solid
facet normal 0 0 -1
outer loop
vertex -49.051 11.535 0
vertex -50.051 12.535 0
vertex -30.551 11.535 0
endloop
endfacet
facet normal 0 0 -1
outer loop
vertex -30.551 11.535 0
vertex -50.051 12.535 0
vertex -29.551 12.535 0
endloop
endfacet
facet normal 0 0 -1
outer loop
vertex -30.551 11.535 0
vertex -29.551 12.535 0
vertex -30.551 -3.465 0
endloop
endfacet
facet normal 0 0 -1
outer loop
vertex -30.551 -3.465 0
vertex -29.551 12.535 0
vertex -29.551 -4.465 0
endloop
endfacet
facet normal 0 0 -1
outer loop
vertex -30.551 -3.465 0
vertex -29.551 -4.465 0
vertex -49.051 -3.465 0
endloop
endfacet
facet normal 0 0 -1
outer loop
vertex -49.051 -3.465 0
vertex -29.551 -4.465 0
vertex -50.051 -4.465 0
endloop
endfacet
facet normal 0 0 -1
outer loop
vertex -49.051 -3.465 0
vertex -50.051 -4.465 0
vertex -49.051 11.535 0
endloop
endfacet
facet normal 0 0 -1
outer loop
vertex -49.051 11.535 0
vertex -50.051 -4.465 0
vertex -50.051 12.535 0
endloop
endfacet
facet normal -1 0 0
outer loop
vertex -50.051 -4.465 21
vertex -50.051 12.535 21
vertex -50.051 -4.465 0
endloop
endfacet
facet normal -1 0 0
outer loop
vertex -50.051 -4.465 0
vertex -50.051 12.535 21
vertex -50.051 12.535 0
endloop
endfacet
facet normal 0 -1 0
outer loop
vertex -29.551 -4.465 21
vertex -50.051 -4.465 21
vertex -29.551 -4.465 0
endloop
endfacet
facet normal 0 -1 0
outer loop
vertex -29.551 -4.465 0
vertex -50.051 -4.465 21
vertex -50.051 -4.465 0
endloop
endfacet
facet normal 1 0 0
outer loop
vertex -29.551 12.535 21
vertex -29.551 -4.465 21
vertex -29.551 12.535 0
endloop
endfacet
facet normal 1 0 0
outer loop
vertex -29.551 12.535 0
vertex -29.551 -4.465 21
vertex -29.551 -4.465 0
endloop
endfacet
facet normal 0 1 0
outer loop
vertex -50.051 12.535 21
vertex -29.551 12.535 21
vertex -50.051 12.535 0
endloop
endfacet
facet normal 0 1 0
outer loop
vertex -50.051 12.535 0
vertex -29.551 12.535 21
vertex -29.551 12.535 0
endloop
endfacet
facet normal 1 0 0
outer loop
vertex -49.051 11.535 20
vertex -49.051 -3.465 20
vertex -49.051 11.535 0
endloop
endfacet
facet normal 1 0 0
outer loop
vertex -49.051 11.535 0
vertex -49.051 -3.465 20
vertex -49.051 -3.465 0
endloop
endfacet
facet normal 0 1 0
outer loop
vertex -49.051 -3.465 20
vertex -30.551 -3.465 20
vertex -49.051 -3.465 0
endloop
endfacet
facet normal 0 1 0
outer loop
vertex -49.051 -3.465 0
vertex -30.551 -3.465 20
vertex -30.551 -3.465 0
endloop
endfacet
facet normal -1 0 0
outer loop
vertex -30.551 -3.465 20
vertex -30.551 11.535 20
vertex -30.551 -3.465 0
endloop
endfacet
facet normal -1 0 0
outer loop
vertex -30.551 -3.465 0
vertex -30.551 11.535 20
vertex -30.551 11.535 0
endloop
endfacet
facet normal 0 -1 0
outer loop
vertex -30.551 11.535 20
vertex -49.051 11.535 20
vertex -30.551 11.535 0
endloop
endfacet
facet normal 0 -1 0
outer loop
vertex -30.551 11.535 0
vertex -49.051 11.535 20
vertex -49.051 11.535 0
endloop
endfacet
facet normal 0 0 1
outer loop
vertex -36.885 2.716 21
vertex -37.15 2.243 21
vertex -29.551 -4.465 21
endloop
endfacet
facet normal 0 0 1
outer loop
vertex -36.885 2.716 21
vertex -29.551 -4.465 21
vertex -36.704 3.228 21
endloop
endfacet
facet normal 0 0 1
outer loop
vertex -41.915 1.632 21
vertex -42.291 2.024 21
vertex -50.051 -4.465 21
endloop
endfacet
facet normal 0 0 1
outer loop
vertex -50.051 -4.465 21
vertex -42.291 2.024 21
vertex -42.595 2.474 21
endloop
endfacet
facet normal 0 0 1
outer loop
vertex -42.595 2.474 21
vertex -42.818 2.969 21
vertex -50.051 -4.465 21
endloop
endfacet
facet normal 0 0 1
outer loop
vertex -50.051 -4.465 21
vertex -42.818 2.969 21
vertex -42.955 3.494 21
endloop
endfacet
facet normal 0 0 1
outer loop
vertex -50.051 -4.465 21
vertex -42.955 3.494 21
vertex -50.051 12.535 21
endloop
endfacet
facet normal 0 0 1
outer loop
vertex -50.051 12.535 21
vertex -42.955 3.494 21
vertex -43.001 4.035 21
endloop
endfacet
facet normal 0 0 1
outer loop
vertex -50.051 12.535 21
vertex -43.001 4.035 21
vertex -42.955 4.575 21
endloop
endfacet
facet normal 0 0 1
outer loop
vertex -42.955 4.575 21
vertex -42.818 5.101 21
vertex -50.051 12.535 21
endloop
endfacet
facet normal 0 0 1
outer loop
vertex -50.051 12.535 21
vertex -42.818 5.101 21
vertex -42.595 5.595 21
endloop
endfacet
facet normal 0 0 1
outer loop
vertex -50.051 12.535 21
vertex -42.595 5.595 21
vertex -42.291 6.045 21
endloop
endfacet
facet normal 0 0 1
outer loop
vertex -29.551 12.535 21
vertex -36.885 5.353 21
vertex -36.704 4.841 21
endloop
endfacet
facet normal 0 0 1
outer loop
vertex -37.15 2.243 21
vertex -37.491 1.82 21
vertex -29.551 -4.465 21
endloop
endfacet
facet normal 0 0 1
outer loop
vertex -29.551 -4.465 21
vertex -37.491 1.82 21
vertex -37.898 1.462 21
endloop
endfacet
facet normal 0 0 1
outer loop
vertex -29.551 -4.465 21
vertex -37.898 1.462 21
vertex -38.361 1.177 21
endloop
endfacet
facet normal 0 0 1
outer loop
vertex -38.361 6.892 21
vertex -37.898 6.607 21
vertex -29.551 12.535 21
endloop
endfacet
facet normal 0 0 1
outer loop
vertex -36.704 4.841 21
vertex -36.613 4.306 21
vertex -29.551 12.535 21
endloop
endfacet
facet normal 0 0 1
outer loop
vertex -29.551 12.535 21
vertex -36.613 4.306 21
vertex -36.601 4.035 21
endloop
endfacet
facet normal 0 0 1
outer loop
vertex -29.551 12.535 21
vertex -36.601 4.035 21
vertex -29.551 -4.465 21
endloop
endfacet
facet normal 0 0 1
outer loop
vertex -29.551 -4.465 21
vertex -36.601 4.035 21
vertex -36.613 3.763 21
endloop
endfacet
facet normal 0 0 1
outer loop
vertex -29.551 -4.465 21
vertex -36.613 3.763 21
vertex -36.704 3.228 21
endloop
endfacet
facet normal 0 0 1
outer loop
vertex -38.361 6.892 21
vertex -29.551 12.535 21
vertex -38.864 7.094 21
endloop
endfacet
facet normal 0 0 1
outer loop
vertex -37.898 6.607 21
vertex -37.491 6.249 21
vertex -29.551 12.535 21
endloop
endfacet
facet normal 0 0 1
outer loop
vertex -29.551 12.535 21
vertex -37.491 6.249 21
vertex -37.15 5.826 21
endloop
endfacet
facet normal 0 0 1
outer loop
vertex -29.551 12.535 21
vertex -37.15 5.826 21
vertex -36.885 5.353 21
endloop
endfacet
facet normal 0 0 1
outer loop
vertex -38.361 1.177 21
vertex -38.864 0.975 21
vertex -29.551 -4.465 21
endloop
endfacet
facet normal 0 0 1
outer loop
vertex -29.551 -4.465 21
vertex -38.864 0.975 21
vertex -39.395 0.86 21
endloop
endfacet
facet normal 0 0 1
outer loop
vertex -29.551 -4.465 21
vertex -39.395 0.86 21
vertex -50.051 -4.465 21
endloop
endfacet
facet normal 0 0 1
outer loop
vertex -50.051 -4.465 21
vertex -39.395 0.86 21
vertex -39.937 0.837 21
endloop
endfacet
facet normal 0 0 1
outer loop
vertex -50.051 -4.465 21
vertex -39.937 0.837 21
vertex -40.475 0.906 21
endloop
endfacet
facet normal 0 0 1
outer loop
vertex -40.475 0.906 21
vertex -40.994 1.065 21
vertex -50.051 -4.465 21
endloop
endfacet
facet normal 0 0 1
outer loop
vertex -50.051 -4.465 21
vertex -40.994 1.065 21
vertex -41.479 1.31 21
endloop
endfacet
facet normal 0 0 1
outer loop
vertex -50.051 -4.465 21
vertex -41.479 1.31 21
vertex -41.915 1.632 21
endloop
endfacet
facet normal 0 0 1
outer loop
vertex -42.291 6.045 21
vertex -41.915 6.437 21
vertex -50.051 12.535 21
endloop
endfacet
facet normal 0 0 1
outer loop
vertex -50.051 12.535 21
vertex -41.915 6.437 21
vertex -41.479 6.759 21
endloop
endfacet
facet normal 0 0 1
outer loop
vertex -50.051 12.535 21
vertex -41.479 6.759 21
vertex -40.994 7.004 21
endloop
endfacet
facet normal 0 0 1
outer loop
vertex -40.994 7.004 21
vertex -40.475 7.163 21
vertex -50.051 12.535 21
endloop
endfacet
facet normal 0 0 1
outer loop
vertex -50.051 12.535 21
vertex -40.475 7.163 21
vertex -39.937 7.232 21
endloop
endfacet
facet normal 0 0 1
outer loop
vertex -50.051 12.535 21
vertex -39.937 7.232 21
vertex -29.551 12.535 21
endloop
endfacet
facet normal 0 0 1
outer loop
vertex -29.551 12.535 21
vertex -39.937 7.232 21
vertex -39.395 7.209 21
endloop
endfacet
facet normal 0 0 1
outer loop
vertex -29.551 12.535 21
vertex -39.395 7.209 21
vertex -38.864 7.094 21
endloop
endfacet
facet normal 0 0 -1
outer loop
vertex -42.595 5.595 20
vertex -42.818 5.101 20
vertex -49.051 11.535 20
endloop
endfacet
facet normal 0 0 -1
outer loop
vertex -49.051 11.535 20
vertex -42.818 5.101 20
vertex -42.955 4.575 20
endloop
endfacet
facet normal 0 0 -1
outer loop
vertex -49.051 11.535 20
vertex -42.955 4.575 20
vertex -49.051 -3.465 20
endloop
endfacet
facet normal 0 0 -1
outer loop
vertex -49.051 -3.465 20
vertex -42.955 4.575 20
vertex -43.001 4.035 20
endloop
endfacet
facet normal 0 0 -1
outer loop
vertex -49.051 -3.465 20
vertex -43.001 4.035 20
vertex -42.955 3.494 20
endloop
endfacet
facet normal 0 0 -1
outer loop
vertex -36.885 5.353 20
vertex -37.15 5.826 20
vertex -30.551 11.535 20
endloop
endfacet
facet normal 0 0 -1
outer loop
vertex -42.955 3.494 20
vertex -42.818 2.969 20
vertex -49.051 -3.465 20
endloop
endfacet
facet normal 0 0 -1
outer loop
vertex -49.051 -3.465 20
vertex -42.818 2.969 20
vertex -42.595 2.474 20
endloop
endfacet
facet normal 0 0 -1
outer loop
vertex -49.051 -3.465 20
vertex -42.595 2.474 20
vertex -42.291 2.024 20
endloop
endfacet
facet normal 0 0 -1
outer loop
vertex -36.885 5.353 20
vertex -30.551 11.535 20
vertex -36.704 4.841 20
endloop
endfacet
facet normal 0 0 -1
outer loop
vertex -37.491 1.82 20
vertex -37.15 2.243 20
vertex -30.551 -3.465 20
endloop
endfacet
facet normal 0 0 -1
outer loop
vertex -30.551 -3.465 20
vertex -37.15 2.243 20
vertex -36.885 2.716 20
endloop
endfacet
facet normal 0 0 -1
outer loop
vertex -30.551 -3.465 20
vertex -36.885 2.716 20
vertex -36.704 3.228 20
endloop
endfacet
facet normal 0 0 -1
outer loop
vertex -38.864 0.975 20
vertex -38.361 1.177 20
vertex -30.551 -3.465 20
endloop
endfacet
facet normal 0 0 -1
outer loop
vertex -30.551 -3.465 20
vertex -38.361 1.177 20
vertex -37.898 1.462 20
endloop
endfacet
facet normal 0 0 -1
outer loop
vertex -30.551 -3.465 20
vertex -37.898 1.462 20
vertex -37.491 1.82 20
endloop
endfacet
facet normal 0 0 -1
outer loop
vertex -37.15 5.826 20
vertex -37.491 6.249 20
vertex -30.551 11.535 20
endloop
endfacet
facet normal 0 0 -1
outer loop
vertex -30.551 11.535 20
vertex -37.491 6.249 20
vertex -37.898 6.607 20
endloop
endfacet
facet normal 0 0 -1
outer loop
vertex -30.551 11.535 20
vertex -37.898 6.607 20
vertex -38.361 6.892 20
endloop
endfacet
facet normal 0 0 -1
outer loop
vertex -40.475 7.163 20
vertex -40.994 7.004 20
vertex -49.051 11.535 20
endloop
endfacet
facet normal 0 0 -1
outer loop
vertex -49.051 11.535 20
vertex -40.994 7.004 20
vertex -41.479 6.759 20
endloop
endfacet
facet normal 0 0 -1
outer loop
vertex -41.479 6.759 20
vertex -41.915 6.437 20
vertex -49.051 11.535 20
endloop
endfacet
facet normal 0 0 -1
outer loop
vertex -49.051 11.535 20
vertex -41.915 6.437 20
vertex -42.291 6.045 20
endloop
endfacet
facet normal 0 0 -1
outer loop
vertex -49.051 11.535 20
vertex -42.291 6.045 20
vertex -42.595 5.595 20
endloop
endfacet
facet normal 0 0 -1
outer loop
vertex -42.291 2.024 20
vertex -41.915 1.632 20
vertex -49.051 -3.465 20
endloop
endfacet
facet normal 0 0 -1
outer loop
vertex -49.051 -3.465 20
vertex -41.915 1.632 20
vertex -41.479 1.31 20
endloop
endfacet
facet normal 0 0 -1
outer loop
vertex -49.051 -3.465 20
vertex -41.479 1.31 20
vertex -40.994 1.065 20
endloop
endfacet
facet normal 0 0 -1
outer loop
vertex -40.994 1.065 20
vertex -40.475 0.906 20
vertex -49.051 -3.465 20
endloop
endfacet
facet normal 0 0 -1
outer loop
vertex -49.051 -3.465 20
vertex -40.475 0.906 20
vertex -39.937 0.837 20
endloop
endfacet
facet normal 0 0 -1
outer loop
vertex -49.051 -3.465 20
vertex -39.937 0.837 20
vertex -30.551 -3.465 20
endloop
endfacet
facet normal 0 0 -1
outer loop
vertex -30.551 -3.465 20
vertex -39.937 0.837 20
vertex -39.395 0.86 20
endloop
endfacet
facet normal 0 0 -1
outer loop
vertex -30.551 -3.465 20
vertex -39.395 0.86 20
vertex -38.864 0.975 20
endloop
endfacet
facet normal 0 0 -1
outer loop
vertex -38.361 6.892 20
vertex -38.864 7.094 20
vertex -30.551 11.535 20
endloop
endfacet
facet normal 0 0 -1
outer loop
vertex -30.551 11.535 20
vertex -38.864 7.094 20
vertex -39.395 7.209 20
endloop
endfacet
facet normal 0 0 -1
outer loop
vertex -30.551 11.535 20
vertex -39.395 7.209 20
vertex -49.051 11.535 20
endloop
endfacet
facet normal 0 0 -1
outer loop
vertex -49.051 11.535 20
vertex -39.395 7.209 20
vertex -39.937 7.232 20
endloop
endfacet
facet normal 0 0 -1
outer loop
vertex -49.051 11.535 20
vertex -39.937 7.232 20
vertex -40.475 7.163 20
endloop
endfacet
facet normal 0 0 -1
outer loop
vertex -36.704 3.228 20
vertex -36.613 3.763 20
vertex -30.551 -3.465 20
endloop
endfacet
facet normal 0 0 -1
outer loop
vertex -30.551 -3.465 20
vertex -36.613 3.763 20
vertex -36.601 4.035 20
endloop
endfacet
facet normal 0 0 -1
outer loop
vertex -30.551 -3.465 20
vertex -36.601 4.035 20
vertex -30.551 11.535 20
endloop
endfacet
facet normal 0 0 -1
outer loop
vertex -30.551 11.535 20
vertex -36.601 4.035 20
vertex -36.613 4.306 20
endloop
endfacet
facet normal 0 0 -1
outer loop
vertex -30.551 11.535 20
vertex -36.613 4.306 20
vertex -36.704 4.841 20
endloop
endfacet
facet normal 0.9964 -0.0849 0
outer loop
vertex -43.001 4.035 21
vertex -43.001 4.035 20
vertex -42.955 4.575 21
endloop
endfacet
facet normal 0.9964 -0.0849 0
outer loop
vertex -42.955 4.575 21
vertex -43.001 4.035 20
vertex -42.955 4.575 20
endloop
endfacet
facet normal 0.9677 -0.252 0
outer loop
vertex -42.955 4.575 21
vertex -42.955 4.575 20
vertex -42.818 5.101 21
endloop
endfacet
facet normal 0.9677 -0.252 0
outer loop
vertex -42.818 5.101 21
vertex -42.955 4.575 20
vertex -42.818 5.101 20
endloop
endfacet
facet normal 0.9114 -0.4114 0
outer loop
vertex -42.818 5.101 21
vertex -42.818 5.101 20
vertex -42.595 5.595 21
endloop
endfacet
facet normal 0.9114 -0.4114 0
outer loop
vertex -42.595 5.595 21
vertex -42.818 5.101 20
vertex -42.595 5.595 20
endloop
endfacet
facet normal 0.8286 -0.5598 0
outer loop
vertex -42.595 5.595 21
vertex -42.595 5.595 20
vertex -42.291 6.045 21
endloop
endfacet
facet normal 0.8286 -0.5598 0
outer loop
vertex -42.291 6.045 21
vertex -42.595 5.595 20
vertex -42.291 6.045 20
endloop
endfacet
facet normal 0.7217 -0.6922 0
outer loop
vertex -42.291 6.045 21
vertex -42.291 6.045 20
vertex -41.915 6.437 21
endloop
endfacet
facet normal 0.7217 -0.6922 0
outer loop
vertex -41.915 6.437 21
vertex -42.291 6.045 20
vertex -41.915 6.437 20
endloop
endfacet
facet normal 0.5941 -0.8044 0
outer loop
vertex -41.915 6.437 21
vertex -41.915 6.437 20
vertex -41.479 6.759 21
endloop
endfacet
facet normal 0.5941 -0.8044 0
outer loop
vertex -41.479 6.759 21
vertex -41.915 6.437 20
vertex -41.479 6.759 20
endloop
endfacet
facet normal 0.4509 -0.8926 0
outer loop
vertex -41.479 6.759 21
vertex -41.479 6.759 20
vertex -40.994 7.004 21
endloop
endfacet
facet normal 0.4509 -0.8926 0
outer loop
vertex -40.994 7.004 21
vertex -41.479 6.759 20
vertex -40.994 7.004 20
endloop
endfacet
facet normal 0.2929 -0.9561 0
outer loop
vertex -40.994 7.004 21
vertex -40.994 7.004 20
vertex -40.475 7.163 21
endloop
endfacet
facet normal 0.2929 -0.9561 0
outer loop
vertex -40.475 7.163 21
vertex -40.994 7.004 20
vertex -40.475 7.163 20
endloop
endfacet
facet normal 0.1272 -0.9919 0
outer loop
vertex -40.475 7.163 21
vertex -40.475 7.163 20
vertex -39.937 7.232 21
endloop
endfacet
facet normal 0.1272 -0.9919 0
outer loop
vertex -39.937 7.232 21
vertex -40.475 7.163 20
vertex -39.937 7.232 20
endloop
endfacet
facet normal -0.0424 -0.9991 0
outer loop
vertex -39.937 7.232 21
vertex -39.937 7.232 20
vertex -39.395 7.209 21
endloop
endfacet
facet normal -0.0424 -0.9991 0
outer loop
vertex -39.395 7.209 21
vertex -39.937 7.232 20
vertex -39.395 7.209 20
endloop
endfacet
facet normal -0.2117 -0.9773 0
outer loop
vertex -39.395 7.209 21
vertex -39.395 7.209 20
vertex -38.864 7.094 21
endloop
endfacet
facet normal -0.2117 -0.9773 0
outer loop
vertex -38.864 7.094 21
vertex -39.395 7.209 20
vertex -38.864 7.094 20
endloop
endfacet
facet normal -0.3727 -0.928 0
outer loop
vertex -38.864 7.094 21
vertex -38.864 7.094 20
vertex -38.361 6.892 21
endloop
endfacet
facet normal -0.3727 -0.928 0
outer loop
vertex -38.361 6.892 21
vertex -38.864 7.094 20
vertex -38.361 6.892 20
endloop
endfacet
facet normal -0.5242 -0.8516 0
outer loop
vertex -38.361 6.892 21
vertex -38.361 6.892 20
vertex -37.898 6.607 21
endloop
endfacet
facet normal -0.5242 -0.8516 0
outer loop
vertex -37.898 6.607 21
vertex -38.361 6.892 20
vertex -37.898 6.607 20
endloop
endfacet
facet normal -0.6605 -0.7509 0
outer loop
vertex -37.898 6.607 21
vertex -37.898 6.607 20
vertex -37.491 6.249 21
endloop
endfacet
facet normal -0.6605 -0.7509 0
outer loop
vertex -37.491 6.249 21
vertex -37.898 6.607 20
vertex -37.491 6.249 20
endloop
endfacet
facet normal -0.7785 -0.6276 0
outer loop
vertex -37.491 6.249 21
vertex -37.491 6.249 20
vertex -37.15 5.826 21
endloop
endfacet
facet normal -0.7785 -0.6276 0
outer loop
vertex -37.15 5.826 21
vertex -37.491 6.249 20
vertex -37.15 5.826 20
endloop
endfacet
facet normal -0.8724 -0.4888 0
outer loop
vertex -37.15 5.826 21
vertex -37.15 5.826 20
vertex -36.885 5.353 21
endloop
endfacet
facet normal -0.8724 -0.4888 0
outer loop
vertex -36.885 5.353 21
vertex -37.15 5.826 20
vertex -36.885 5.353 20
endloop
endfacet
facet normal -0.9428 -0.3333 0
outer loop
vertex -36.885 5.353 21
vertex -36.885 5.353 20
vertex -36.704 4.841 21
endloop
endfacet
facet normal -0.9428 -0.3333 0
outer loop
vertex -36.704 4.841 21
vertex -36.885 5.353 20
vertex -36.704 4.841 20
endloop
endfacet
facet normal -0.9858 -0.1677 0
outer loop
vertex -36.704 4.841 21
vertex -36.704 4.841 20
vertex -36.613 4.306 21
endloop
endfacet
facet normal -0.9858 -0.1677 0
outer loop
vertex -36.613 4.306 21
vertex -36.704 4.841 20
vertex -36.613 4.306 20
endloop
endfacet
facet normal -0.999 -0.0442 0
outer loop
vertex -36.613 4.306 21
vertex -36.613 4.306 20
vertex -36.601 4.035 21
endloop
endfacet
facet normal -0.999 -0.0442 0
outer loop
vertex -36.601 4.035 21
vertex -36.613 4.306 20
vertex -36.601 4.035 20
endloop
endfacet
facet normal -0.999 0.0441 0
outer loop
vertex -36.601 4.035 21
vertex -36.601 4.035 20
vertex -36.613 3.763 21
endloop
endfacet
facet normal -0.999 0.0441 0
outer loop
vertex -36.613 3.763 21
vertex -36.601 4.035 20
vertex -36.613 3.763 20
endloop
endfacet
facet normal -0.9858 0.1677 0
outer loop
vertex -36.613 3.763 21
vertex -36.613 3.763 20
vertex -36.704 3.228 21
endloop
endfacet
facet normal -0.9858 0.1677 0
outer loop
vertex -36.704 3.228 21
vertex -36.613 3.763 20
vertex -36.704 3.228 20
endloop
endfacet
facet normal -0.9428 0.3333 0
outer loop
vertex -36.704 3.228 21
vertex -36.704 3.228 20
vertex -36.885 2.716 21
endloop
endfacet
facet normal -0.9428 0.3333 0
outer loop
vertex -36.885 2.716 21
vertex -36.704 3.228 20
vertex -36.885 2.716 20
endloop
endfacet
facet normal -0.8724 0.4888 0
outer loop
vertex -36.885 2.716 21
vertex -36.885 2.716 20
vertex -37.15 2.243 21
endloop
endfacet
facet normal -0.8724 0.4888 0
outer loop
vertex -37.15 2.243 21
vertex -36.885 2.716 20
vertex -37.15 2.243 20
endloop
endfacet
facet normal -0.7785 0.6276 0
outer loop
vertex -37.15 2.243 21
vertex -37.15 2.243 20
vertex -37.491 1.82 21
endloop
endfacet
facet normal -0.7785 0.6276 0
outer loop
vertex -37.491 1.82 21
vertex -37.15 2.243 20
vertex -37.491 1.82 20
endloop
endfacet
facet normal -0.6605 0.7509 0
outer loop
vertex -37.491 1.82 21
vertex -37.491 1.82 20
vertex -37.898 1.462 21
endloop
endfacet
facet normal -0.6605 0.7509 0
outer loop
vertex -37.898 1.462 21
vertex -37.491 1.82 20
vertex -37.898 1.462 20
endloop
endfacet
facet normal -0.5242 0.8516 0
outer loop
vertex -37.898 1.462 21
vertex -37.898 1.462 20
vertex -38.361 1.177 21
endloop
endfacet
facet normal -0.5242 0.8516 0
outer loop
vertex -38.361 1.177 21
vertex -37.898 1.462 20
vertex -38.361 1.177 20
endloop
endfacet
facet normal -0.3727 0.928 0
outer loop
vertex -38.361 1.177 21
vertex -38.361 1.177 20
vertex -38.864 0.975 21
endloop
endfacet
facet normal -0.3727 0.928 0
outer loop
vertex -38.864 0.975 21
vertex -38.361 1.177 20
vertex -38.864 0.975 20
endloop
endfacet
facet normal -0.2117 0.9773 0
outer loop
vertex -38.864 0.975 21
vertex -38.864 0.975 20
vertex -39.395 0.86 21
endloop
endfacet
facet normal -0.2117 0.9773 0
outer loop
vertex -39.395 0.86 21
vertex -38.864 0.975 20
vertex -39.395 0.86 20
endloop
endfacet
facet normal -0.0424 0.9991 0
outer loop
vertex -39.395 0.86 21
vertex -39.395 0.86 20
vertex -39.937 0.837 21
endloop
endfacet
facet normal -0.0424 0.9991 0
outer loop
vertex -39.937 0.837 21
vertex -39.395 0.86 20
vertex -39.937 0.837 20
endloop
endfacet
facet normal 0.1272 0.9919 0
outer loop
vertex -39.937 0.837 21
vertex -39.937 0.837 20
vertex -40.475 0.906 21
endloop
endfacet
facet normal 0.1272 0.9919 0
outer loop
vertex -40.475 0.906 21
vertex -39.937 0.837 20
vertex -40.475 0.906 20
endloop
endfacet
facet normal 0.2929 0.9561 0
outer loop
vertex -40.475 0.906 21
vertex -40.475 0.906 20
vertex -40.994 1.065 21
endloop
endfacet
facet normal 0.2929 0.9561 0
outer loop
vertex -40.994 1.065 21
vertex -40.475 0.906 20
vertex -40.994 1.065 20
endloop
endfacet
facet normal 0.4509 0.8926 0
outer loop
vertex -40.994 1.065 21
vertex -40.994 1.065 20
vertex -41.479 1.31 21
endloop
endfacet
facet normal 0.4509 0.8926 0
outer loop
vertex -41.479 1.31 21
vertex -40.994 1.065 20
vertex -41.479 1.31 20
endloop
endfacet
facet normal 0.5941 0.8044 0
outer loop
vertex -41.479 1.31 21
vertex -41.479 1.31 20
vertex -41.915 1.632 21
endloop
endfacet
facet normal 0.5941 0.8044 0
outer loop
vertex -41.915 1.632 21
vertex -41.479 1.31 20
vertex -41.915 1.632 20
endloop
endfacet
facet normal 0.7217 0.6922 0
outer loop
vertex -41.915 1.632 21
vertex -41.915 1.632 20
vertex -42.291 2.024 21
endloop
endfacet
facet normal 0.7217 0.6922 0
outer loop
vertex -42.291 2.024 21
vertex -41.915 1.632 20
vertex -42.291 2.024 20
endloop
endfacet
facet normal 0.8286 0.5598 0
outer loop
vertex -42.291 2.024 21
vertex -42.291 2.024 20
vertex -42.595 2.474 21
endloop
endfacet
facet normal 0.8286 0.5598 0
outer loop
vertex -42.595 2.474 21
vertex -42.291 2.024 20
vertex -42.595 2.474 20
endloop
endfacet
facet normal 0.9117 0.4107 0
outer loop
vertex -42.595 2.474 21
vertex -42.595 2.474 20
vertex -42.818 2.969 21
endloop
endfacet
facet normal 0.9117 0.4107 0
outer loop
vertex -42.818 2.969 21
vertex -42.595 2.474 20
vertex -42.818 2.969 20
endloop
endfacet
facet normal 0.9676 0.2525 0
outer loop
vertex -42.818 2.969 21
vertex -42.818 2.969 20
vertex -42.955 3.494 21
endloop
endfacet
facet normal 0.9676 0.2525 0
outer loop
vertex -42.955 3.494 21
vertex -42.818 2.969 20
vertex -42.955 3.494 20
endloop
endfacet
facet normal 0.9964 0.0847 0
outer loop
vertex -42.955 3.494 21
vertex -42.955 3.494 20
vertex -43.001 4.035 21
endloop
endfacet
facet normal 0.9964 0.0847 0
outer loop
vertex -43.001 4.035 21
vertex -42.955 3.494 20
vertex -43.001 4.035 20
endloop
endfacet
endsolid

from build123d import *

# Parameters (mm, degrees)
CROQUIS1_W              = 20.5
CROQUIS1_H              = 17
CROQUIS1_W_2            = 18.5
CROQUIS1_H_2            = 15
SALIENTE_EXTRUIR1_DEPTH = 20
CROQUIS2_W              = 20.5
CROQUIS2_H              = 17
CROQUIS2_R              = 3.2
SALIENTE_EXTRUIR2_DEPTH = 1


with BuildPart() as part:
    # Croquis1 → Saliente-Extruir1 (new body)
    with BuildSketch(Plane.XY):
        with Locations((-39.801220416, 4.034561614)):
            Rectangle(CROQUIS1_W, CROQUIS1_H)
        with Locations((-39.801220416, 4.034561614)):
            Rectangle(CROQUIS1_W_2, CROQUIS1_H_2, mode=Mode.SUBTRACT)
    extrude(amount=SALIENTE_EXTRUIR1_DEPTH)

    # Croquis2 → Saliente-Extruir2 (add)
    with BuildSketch(Plane.XY.offset(20)):
        with Locations((-39.801220416, 4.034561614)):
            Rectangle(CROQUIS2_W, CROQUIS2_H)
        with Locations((-39.801220416, 4.034561614)):
            Circle(CROQUIS2_R, mode=Mode.SUBTRACT)
    extrude(amount=SALIENTE_EXTRUIR2_DEPTH)


solid = part.part
